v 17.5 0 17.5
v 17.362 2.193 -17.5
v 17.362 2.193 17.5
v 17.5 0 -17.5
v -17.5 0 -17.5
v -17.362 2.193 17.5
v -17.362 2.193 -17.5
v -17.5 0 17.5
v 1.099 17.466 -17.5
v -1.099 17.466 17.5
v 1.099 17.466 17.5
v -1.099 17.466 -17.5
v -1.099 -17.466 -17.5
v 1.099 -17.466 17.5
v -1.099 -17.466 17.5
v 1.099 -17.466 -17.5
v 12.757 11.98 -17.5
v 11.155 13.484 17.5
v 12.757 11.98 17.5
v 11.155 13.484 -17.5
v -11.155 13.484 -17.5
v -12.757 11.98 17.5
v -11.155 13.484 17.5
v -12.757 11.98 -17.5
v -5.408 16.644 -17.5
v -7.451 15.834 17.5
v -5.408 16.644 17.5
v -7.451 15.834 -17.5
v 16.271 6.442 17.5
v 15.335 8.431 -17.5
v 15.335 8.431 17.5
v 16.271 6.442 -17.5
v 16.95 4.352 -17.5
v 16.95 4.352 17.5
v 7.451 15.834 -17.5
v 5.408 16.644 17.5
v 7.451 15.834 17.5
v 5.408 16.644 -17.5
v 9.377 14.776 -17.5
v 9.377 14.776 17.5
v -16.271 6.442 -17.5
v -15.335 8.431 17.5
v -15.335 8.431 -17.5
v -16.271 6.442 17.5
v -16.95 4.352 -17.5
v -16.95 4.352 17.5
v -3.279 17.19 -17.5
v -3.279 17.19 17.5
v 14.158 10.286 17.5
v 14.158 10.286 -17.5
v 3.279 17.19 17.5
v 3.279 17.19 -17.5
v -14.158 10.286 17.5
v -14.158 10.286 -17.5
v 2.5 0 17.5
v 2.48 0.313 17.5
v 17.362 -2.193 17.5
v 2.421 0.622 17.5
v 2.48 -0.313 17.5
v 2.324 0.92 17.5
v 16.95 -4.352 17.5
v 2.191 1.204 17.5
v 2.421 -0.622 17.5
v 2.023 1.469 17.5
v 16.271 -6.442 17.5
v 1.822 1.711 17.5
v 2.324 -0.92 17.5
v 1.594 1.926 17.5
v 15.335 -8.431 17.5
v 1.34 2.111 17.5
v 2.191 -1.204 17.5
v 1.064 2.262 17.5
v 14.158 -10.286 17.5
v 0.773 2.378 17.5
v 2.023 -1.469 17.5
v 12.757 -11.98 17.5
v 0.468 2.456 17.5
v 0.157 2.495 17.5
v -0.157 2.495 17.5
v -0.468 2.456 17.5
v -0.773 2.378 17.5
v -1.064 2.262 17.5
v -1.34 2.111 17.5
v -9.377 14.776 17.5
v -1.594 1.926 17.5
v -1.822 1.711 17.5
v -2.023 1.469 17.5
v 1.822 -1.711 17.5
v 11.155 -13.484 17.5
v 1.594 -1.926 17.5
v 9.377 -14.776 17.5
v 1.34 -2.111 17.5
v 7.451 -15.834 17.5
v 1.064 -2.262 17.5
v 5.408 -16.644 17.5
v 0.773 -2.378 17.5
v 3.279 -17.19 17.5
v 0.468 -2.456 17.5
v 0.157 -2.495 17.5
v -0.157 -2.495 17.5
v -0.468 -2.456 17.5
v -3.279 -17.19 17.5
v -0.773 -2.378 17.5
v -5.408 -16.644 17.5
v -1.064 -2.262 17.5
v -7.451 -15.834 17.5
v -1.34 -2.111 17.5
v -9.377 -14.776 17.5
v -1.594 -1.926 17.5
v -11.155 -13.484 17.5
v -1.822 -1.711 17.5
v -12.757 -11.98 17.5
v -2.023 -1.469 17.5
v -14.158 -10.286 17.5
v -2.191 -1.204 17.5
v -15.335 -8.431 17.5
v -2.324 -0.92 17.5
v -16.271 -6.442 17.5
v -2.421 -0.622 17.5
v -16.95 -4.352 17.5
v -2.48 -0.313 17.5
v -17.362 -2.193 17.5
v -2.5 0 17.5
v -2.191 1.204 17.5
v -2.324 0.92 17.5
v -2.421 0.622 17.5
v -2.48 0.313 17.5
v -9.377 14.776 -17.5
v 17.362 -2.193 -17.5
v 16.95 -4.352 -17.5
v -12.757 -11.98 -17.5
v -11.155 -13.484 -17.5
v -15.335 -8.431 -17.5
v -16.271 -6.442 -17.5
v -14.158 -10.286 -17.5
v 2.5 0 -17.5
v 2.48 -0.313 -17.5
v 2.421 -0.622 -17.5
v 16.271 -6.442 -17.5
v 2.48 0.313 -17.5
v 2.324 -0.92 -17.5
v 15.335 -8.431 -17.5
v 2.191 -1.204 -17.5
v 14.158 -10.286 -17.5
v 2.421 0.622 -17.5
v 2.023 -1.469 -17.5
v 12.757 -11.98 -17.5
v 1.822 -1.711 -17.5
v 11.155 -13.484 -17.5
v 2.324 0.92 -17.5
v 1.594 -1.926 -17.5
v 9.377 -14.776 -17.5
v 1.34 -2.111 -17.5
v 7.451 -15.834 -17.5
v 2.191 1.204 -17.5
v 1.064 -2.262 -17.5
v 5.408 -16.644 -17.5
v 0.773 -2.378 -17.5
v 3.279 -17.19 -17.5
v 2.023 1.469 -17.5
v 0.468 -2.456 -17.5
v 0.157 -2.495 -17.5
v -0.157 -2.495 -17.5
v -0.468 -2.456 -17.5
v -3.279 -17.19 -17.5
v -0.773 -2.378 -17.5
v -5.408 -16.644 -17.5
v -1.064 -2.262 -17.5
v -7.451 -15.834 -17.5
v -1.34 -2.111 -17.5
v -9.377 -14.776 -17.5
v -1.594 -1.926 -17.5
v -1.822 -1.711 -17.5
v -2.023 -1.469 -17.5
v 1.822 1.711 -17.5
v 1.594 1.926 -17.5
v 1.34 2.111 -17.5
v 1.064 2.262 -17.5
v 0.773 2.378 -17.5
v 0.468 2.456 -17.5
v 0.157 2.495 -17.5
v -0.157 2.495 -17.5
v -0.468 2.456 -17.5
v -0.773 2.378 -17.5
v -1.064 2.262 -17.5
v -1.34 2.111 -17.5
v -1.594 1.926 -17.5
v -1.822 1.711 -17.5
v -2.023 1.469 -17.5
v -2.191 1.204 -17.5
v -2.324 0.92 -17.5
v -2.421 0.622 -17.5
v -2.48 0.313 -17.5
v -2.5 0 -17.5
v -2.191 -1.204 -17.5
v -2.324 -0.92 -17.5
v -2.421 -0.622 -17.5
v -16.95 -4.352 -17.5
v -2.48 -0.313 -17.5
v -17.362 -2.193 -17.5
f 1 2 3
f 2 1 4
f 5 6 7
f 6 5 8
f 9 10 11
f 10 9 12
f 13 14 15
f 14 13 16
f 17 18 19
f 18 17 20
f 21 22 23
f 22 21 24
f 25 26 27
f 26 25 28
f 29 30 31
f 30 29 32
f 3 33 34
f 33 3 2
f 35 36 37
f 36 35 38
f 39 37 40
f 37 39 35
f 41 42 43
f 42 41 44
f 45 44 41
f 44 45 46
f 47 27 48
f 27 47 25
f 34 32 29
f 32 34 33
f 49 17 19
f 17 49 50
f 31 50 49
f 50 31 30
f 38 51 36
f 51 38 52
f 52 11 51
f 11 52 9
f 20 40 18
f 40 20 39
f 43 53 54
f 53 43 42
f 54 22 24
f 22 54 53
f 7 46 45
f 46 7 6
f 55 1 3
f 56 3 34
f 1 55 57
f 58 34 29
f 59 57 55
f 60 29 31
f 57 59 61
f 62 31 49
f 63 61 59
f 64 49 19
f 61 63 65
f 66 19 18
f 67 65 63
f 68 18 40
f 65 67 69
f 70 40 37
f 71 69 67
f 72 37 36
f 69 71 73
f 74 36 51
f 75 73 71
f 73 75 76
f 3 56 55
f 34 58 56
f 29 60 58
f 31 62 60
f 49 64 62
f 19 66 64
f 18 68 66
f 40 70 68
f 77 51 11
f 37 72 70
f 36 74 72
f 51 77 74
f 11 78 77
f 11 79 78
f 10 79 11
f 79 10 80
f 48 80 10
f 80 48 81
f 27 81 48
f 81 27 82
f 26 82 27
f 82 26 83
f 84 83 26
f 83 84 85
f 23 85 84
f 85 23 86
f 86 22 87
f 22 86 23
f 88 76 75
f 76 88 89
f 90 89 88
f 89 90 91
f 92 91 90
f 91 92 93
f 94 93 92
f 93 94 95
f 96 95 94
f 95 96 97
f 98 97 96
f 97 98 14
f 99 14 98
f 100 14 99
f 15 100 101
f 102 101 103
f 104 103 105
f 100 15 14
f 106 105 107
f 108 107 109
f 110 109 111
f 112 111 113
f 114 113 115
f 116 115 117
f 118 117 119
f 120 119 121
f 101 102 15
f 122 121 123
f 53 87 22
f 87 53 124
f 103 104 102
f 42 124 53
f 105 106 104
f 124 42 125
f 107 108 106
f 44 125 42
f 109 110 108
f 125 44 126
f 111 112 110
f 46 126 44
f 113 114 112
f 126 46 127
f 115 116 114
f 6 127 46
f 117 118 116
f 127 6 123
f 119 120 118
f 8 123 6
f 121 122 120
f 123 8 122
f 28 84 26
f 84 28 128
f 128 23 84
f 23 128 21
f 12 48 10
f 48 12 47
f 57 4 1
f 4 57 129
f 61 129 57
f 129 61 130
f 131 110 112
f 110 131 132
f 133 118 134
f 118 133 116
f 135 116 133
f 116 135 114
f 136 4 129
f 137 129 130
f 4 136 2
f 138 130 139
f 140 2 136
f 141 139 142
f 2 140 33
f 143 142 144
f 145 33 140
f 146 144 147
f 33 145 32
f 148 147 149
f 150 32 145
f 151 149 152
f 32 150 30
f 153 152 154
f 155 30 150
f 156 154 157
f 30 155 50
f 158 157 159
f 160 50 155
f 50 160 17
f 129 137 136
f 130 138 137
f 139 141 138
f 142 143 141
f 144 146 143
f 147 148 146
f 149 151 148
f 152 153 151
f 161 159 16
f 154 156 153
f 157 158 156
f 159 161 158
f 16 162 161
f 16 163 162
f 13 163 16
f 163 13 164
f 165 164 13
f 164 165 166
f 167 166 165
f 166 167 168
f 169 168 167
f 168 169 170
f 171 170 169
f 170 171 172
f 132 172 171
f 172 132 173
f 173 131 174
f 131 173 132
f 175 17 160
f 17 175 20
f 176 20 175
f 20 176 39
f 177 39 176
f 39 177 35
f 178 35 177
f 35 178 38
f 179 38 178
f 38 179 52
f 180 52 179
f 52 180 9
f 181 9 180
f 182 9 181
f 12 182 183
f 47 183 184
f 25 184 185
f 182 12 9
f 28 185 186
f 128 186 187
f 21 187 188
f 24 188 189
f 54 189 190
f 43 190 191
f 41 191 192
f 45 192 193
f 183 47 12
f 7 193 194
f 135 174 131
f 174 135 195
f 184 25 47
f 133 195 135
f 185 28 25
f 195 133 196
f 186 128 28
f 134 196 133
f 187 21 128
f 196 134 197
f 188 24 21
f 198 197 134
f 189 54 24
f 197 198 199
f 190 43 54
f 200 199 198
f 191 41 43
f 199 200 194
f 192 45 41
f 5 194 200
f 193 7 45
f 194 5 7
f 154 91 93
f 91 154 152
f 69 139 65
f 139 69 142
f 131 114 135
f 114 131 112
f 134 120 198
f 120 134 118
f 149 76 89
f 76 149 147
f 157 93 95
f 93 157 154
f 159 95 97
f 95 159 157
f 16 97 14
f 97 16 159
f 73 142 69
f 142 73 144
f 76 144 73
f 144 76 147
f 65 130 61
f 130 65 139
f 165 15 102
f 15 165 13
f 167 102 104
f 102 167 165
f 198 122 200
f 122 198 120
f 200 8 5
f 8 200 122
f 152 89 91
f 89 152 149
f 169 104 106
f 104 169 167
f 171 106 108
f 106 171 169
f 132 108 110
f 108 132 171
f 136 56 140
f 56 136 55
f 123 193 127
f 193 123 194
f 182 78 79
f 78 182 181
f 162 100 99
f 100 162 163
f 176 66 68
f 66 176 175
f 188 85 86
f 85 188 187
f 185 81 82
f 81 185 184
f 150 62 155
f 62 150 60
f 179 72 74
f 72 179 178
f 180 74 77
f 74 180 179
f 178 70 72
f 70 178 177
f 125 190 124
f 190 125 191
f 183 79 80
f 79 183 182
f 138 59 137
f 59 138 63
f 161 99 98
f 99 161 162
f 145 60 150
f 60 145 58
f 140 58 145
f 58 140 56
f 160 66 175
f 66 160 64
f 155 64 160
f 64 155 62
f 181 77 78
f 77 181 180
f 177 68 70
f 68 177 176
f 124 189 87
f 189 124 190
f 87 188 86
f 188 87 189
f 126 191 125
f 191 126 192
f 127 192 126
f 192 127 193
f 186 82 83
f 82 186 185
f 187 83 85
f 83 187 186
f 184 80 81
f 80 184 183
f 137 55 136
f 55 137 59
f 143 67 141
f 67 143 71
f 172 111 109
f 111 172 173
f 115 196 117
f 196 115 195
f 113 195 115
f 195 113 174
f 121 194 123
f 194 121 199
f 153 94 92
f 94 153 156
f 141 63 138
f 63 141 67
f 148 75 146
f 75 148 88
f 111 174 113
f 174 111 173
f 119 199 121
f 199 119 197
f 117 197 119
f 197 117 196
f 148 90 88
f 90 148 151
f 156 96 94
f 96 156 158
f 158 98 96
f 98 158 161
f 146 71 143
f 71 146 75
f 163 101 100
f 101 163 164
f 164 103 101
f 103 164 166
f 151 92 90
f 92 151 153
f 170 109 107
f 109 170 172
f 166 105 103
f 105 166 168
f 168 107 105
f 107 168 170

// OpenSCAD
$fn = 50;


difference() {
	union() {
		translate(v = [0, 0, -17.5000000000]) {
			cylinder(h = 35, r = 17.5000000000);
		}
	}
	union() {
		translate(v = [0, 0, -100.0000000000]) {
			cylinder(h = 200, r = 2.5000000000);
		}
	}
}
